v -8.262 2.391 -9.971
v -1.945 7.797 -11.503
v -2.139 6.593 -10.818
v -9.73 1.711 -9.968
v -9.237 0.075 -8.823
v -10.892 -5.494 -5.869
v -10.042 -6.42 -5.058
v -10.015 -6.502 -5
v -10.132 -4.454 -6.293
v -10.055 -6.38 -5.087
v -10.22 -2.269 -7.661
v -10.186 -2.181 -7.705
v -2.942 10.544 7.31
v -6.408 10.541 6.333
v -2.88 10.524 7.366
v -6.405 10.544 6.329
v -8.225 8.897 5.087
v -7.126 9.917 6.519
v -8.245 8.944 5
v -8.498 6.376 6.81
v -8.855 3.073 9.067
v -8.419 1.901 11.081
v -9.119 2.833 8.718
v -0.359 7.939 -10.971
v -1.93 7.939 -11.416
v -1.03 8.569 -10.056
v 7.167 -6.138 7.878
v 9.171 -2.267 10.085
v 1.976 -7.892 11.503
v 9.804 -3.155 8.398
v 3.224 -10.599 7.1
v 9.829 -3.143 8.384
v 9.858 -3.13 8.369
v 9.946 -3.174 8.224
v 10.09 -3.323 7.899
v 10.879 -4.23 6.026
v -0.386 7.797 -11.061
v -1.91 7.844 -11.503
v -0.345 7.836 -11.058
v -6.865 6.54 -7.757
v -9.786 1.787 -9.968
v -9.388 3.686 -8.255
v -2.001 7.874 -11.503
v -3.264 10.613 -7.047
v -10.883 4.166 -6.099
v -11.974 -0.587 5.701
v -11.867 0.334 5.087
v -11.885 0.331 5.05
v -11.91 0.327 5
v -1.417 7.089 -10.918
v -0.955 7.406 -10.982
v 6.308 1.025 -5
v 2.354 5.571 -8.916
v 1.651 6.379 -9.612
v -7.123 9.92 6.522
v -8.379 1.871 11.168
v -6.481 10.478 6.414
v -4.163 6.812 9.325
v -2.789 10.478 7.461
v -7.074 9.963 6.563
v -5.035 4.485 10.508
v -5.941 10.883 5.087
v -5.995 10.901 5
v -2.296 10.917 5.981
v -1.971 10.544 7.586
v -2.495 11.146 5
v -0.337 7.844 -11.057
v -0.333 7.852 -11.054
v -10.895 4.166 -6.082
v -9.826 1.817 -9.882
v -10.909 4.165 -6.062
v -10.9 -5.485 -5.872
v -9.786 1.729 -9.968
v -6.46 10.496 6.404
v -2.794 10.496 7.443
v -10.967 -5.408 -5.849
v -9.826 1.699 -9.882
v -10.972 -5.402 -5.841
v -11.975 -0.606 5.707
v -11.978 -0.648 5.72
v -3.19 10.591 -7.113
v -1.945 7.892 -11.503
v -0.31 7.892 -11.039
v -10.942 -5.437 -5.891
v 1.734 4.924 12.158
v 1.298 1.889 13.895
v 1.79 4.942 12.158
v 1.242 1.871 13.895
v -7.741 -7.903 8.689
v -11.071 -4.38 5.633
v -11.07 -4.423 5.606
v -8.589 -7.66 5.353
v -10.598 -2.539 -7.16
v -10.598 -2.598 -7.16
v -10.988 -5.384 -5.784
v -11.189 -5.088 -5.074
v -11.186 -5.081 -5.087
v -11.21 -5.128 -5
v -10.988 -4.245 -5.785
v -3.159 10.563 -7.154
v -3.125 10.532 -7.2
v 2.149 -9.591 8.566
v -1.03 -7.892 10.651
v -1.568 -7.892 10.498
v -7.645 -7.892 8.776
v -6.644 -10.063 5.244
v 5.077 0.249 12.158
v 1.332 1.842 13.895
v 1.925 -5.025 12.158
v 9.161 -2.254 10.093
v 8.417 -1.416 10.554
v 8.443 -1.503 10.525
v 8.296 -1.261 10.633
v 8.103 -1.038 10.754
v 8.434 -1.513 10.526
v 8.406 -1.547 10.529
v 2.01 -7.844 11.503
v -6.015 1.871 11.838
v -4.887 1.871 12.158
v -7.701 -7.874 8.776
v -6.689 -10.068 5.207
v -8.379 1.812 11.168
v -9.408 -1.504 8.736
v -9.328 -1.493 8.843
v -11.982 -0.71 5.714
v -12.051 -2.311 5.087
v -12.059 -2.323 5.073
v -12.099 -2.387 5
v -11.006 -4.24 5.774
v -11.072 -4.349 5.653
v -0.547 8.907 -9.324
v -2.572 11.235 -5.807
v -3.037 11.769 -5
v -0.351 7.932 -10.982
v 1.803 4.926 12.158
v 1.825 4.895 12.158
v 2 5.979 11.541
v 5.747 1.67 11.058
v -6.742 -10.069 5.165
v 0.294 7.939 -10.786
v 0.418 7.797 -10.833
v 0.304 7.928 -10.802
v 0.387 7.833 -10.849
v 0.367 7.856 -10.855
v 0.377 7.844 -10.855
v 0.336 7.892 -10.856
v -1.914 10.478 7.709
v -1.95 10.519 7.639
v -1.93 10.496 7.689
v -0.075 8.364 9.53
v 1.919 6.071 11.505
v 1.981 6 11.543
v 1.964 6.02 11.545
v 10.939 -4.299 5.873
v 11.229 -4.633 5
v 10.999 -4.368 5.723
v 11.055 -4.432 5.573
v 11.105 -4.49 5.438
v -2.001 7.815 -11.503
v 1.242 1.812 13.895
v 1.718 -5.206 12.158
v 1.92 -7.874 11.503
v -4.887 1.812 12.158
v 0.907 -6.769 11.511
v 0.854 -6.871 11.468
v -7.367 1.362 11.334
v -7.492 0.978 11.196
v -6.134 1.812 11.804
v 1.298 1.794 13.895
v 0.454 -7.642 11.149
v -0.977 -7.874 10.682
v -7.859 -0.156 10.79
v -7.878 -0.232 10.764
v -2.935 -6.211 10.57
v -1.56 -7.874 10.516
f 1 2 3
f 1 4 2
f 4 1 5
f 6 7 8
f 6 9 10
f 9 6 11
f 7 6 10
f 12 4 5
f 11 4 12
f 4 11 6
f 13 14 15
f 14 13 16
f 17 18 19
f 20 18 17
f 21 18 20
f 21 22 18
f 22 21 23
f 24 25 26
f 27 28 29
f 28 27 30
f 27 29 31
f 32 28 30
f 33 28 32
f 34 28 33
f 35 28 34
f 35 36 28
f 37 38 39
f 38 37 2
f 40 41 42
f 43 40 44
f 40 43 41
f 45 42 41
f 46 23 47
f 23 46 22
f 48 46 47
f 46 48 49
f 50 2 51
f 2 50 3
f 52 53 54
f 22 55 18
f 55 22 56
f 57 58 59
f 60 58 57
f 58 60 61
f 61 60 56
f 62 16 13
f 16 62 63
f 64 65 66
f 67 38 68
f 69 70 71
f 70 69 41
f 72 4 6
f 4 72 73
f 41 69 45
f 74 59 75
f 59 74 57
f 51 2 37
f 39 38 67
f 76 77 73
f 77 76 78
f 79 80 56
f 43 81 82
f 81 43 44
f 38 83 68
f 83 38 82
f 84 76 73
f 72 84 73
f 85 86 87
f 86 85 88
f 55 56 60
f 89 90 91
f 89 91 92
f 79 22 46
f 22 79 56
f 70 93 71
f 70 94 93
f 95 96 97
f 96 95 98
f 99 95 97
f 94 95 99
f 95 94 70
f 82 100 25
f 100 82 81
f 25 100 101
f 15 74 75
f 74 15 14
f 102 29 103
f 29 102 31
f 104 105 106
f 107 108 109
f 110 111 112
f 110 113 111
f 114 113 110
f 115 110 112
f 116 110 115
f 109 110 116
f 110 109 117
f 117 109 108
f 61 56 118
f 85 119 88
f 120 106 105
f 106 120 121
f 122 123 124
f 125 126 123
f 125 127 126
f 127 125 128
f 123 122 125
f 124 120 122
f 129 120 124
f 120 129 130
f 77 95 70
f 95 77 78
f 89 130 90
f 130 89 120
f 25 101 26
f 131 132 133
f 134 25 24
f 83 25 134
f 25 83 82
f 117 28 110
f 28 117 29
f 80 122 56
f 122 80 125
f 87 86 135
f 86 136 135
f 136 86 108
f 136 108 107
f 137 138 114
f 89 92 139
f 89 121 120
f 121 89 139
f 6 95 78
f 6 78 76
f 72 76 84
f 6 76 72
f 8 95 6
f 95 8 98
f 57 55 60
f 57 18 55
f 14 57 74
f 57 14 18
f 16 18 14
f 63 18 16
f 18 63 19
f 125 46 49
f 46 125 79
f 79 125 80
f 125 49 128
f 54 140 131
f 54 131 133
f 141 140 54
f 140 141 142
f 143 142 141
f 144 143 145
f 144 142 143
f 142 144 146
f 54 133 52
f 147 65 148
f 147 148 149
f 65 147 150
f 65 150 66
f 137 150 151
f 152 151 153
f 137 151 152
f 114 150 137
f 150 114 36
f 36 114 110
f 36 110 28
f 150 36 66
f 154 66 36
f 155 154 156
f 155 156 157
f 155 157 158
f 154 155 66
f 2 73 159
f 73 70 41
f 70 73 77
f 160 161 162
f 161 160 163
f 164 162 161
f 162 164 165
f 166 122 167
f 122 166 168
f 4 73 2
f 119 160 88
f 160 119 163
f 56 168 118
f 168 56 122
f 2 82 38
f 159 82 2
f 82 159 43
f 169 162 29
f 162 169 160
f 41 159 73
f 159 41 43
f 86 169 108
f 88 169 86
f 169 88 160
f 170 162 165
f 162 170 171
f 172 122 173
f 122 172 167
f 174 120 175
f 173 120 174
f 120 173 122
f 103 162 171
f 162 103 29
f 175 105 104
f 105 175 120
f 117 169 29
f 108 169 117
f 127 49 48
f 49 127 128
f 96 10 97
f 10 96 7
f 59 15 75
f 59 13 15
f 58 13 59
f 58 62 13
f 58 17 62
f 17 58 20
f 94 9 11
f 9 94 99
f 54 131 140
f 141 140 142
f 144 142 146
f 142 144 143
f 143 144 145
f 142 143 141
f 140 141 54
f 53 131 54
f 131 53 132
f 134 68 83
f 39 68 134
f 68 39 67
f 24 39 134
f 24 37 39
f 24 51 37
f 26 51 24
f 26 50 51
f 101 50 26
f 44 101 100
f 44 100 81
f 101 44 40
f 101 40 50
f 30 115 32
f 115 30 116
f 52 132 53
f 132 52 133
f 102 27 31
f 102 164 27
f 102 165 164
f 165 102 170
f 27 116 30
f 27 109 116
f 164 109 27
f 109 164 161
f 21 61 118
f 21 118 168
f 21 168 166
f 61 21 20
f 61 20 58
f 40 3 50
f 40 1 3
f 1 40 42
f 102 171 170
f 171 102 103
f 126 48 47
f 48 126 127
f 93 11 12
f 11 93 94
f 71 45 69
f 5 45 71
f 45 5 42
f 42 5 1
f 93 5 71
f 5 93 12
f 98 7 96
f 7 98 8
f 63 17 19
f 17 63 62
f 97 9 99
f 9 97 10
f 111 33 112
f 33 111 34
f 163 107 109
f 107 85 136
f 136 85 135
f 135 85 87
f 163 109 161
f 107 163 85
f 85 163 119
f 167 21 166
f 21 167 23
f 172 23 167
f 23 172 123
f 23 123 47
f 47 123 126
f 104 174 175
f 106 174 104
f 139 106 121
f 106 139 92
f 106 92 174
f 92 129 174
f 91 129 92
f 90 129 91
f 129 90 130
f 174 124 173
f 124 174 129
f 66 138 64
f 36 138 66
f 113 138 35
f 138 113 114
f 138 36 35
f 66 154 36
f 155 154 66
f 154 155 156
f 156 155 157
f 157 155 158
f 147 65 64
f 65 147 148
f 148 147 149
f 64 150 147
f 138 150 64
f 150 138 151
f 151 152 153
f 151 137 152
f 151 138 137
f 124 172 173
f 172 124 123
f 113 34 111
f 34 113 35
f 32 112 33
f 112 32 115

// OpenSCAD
// Auto-generated OpenSCAD file

    inner_points = 10*[[-0.022364928152955727, -0.6833428365326427, -1.2071067811865261], [0.7321659228464581, -0.027078259635412338, -1.2071067811864415], [-0.6786295050501859, 0.07118801446677113, -1.2071067811866534], [0.07590134594922775, 0.7274525913640015, -1.2071067811865688], [-0.022364928153311443, -0.6833428365325447, 1.2071067811865688], [0.7321659228461023, -0.027078259635314305, 1.2071067811866534], [-0.6786295050505418, 0.07118801446686916, 1.2071067811864415], [0.07590134594887203, 0.7274525913640996, 1.2071067811865261], [0.4416842044234921, -1.2168767178887558, -0.4999999999998886], [1.1962150554229058, -0.5606121409915255, -0.49999999999980405], [-1.142678637626842, 0.6047218958229418, -0.500000000000196], [-0.38814778662742855, 1.2609864727201718, -0.5000000000001115], [0.4416842044233449, -1.2168767178887152, 0.5000000000001115], [1.1962150554227584, -0.5606121409914849, 0.500000000000196], [-1.1426786376269895, 0.6047218958229823, 0.49999999999980405], [-0.38814778662757576, 1.2609864727202125, 0.4999999999998886], [-0.5558988095092017, -1.147391969109166, -0.5000000000000384], [-1.212163386406432, -0.3928611181097522, -0.5000000000001656], [-0.5558988095093491, -1.1473919691091254, 0.49999999999996164], [-1.2121633864065793, -0.39286111810971164, 0.4999999999998343]];

    outer_points = 10*[[1.1133863022512445, 0.6849025719557661, 0.4983835772517235], [1.3481473042168641, 0.17580803999924655, -0.3296925240143803], [0.9745294777189386, -0.17580803999924655, 0.9881753950159978], [1.2092904796845583, -0.6849025719557661, 0.160099293749894], [-1.2092904796845583, 0.6849025719557661, -0.160099293749894], [-0.9745294777189386, 0.17580803999924655, -0.9881753950159978], [-1.3481473042168641, -0.17580803999924655, 0.3296925240143803], [-1.1133863022512445, -0.6849025719557661, -0.4983835772517235], [0.5312766255676197, 1.2935168823083785, -0.04081670608026772], [0.7660376275332393, 0.784422350351859, -0.8688928073463715], [0.19604659655366607, -0.784422350351859, 1.1416453431056148], [0.43080759851928574, -1.2935168823083785, 0.3135692418395109], [-0.43080759851928574, 1.2935168823083785, -0.3135692418395109], [-0.19604659655366607, 0.784422350351859, -1.1416453431056148], [-0.7660376275332393, -0.784422350351859, 0.8688928073463715], [-0.5312766255676197, -1.2935168823083785, 0.04081670608026772], [0.2670889268787577, 1.0448867677672125, 0.8910566361743166], [0.12823210234645194, 0.18417615581219987, 1.3808484539385908], [-0.6949952972081477, 1.0448867677672125, 0.6183041004150733], [-0.8338521217404535, 0.18417615581219987, 1.1080959181793475]];

    // Convex hull for inner set (I)
    module inner_hull() {
        hull() {
            for (p = inner_points) {
                translate(p) sphere(r=0.1);
            }
        }
    }

    // Convex hull for outer set (O) minus inner hull (O \ I)
    module outer_minus_inner() {
        difference() {
            hull() {
                for (p = outer_points) {
                    translate(p) sphere(r=0.1);
                }
            }
            inner_hull(); // Subtract inner hull
        }
    }

    // Convex hull for outer set (O) minus all translated inner hulls
    module outer_minus_AllTranslationInner() {
        difference() {
            hull() {
                for (p = outer_points) {
                    translate(p) sphere(r=0.1);
                }
            }
            hull() {
                translate([0,0,50]) inner_hull();
                translate([0,0,-50]) inner_hull();
            }; // Subtract translated inner hulls
        }
    }

    // Difference between outer_minus_inner and outer_minus_AllTranslationInner
    module outer_minus_inner_diff() {
        difference() {
            // Outer minus inner
            difference() {
                hull() {
                    for (p = outer_points) {
                        translate(p) sphere(r=0.1);
                    }
                }
                inner_hull();
            }

            // Subtract Outer minus AllTranslationInner
            difference() {
                hull() {
                    for (p = outer_points) {
                        translate(p) sphere(r=0.1);
                    }
                }
                hull() {
                    translate([0,0,50]) inner_hull();
                    translate([0,0,-50]) inner_hull();
                };
            }
        }
    }

    // Rendering all with colors applied
    color([1, 1, 0, 1]) outer_minus_inner_diff(); // Opaque yellow
    
